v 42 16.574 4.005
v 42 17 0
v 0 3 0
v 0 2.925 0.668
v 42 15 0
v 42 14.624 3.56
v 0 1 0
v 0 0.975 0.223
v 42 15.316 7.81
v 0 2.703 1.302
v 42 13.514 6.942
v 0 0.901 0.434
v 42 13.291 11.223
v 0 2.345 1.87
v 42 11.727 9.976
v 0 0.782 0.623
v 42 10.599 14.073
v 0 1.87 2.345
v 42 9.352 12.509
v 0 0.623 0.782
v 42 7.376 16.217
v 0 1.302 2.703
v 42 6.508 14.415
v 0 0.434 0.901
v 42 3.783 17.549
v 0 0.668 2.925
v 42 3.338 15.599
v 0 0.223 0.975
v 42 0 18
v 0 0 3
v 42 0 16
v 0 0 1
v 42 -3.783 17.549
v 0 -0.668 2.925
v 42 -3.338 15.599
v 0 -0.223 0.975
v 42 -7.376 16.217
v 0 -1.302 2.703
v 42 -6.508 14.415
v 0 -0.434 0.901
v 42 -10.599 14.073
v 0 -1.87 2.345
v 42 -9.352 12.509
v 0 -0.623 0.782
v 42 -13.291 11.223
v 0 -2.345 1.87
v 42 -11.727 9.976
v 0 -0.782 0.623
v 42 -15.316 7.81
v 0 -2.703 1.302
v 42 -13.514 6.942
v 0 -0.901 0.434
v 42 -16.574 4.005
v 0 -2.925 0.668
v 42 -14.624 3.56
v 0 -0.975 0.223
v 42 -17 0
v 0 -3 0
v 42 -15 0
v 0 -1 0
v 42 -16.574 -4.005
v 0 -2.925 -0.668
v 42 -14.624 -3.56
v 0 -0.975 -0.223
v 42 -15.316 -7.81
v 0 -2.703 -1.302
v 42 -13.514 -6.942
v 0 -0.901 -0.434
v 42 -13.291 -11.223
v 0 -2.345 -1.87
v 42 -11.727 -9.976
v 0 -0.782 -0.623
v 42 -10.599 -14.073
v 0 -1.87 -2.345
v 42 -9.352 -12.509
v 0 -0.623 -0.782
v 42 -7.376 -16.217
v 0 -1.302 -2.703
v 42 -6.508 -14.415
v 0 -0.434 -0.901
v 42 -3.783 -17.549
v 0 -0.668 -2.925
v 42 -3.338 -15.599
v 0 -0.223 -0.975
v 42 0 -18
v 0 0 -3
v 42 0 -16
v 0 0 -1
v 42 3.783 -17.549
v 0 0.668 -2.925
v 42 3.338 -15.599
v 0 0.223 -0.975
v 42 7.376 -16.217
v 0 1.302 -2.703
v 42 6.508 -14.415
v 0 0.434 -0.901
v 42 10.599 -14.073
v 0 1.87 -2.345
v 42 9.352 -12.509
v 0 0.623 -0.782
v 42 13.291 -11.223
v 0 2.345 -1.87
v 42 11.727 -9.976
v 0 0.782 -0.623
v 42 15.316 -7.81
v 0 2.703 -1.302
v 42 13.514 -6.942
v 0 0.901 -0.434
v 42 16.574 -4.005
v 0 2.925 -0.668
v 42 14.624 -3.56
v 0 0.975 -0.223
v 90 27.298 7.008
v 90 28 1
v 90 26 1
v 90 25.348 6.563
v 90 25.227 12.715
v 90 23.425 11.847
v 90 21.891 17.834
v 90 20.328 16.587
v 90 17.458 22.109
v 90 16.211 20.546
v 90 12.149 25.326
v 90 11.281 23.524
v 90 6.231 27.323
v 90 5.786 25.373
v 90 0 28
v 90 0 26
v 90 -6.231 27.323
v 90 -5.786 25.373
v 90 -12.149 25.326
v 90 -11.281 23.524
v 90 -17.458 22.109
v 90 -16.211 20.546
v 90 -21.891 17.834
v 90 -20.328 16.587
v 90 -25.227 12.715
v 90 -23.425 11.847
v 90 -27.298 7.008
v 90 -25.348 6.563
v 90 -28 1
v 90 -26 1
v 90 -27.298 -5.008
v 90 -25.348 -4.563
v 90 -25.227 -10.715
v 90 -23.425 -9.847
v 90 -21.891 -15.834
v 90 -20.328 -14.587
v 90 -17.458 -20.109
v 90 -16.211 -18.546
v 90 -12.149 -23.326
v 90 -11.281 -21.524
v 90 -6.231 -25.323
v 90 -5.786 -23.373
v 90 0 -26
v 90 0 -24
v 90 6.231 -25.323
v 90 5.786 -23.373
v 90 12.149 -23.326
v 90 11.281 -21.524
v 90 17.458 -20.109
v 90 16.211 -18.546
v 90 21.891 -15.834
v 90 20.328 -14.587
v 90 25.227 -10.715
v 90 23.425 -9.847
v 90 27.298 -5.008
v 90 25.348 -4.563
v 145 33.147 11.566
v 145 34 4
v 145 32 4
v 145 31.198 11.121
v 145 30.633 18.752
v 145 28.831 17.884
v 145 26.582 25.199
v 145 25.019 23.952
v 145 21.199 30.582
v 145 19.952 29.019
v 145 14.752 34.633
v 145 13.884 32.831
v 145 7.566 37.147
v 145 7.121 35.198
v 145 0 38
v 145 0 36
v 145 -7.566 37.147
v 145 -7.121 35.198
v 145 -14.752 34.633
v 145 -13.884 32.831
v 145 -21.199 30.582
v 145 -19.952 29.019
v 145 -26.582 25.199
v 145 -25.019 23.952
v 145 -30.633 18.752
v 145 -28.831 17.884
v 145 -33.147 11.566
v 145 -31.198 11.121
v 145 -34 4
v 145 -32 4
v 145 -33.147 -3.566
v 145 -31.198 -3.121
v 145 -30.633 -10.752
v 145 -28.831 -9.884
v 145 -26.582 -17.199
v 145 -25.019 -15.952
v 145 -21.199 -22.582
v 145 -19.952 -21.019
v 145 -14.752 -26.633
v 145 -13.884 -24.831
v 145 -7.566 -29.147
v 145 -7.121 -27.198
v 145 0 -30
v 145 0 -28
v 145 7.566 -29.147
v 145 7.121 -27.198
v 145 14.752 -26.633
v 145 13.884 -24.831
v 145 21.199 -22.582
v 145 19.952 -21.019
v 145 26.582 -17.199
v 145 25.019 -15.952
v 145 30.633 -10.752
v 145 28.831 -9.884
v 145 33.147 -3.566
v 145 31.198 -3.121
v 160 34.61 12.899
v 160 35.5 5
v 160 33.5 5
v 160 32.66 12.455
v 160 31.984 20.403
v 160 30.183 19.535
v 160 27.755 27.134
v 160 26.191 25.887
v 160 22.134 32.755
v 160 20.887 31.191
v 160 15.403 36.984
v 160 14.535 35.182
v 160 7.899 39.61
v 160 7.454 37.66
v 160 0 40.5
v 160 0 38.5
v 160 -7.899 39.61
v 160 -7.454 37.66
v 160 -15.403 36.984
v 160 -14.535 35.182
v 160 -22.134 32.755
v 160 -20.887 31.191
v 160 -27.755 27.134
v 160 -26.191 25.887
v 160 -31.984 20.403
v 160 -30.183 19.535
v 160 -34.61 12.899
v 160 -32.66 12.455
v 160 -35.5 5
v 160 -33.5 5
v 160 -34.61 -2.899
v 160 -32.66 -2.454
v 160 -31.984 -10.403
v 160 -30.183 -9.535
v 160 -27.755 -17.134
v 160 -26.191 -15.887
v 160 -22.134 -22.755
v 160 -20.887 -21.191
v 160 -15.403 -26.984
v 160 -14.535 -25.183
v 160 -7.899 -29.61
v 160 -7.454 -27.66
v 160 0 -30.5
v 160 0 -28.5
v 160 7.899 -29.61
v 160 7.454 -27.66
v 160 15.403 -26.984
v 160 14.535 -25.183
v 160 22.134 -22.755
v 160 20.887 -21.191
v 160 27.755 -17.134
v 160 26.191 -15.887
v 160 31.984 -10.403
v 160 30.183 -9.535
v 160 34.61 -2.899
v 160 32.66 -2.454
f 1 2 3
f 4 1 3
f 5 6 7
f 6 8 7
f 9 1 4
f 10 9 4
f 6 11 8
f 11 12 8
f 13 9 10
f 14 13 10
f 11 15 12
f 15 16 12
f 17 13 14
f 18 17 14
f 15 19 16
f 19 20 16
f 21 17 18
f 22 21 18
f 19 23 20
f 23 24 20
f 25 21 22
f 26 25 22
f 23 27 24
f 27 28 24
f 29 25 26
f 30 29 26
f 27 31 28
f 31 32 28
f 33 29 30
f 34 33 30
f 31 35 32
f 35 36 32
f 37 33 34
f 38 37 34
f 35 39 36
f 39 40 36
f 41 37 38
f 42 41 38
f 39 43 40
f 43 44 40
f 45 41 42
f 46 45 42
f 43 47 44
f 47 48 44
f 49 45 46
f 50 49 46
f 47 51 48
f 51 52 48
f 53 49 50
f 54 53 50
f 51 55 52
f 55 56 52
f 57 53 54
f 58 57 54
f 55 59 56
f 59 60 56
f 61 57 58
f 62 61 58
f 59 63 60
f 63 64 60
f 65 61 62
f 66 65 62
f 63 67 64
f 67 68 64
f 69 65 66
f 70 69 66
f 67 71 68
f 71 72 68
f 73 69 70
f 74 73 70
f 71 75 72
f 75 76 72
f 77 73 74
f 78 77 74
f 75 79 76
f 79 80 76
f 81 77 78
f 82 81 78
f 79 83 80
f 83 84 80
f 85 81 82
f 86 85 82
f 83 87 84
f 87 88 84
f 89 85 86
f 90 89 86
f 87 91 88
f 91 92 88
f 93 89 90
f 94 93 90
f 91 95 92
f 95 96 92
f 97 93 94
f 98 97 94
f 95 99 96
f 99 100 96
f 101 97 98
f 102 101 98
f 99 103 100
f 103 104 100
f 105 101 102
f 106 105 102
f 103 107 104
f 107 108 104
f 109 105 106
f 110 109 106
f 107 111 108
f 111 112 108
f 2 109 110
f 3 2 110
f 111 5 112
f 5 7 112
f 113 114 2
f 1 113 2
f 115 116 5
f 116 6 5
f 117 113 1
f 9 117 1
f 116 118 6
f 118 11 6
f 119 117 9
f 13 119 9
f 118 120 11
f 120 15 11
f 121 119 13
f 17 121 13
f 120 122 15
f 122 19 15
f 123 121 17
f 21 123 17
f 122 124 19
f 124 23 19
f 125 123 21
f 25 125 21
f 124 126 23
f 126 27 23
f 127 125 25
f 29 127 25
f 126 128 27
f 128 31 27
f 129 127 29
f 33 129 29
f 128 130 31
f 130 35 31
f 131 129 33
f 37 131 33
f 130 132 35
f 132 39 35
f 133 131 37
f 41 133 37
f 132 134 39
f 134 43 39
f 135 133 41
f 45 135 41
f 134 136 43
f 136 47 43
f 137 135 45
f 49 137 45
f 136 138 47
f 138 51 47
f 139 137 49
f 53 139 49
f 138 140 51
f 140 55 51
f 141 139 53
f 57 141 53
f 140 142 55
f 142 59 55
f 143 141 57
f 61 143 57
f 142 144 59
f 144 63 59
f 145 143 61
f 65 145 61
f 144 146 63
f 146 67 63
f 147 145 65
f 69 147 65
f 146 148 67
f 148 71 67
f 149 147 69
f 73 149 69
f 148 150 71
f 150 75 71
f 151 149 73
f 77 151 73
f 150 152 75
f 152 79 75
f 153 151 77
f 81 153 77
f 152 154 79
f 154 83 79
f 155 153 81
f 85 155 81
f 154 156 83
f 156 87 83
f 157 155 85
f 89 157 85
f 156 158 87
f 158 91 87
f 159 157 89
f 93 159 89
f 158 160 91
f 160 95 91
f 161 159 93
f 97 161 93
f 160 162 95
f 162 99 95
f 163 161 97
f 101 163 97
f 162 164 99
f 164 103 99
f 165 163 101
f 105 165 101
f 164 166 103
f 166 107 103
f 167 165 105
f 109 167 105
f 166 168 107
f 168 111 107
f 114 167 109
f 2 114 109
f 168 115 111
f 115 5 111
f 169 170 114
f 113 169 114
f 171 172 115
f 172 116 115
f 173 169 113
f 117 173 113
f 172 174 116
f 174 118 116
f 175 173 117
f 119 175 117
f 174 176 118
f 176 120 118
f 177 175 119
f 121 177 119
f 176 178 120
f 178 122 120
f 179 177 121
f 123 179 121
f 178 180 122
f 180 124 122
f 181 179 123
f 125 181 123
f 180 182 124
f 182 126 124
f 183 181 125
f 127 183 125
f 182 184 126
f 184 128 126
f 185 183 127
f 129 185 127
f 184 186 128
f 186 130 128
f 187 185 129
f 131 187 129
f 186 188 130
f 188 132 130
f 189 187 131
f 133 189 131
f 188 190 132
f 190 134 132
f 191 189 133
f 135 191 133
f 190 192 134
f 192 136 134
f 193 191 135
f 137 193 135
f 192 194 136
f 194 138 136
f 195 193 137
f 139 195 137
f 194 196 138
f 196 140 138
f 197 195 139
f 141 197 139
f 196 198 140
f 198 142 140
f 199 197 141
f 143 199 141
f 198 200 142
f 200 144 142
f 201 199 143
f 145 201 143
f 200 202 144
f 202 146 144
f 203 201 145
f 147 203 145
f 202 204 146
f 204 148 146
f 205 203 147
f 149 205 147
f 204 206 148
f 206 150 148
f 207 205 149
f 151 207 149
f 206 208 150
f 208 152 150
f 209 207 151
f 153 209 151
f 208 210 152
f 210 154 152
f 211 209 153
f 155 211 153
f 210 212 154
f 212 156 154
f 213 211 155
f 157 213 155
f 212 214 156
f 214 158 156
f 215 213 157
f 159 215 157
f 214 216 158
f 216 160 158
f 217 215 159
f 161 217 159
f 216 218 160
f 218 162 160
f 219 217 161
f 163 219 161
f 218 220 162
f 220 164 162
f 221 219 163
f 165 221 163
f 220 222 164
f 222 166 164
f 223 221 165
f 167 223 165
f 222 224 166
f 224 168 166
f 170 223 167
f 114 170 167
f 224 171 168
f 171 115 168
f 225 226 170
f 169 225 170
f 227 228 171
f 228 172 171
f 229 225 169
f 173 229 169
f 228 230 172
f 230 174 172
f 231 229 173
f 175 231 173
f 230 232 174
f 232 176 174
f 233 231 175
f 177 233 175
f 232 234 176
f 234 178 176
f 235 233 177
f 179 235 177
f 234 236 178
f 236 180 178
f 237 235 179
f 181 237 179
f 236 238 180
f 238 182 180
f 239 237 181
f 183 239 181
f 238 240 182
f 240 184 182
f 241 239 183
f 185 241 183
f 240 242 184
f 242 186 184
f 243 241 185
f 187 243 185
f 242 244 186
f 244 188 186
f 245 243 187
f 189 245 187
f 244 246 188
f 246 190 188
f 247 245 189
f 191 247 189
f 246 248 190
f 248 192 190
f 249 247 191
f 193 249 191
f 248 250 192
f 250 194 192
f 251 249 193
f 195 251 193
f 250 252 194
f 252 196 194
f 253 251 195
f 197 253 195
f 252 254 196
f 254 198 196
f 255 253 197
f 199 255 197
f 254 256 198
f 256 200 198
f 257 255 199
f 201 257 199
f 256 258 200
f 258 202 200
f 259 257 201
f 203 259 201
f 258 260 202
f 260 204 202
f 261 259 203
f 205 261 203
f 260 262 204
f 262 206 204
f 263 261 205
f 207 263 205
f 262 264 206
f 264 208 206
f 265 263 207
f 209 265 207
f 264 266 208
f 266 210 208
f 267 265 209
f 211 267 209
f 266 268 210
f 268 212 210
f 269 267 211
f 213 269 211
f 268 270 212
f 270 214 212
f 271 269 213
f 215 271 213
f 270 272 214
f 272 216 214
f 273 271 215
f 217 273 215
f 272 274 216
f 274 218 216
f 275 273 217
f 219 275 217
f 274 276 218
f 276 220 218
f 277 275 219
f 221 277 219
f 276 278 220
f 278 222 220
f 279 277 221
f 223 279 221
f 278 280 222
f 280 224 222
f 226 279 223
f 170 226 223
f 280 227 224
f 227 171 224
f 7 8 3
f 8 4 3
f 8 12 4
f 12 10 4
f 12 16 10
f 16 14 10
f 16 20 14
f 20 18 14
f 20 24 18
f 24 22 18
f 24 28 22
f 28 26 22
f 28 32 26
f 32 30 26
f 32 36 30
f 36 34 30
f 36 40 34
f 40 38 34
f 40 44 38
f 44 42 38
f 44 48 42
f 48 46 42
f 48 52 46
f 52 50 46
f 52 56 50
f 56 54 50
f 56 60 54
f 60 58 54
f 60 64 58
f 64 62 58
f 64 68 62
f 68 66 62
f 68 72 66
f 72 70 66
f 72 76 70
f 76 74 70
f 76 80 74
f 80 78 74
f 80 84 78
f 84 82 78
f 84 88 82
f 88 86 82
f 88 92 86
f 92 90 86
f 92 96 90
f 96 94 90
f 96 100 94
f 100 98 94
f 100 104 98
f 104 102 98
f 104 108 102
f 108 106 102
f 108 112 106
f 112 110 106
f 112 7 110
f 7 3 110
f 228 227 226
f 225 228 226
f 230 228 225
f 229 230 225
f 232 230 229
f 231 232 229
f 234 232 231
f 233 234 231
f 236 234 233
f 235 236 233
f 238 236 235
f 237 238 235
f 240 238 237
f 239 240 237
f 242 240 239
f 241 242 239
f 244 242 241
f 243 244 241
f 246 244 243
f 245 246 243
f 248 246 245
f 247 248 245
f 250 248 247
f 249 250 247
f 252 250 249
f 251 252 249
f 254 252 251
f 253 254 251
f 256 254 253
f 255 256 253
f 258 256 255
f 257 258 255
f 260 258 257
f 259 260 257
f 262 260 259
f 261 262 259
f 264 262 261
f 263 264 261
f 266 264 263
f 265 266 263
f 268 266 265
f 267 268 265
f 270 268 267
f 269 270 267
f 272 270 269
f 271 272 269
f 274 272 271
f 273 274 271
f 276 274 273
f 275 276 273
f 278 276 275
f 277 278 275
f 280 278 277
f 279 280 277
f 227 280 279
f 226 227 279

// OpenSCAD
polyhedron(points=[[0.0, 3.0, 0.0], [0.0, 2.924784, 0.667563], [0.0, 2.702907, 1.301651], [0.0, 2.345494, 1.870469], [0.0, 1.870469, 2.345494], [0.0, 1.301651, 2.702907], [0.0, 0.667563, 2.924784], [0.0, 0.0, 3.0], [0.0, -0.667563, 2.924784], [0.0, -1.301651, 2.702907], [0.0, -1.870469, 2.345494], [0.0, -2.345494, 1.870469], [0.0, -2.702907, 1.301651], [0.0, -2.924784, 0.667563], [0.0, -3.0, 0.0], [0.0, -2.924784, -0.667563], [0.0, -2.702907, -1.301651], [0.0, -2.345494, -1.870469], [0.0, -1.870469, -2.345494], [0.0, -1.301651, -2.702907], [0.0, -0.667563, -2.924784], [0.0, -0.0, -3.0], [0.0, 0.667563, -2.924784], [0.0, 1.301651, -2.702907], [0.0, 1.870469, -2.345494], [0.0, 2.345494, -1.870469], [0.0, 2.702907, -1.301651], [0.0, 2.924784, -0.667563], [0.0, 1.0, 0.0], [0.0, 0.974928, 0.222521], [0.0, 0.900969, 0.433884], [0.0, 0.781831, 0.62349], [0.0, 0.62349, 0.781831], [0.0, 0.433884, 0.900969], [0.0, 0.222521, 0.974928], [0.0, 0.0, 1.0], [0.0, -0.222521, 0.974928], [0.0, -0.433884, 0.900969], [0.0, -0.62349, 0.781831], [0.0, -0.781831, 0.62349], [0.0, -0.900969, 0.433884], [0.0, -0.974928, 0.222521], [0.0, -1.0, 0.0], [0.0, -0.974928, -0.222521], [0.0, -0.900969, -0.433884], [0.0, -0.781831, -0.62349], [0.0, -0.62349, -0.781831], [0.0, -0.433884, -0.900969], [0.0, -0.222521, -0.974928], [0.0, -0.0, -1.0], [0.0, 0.222521, -0.974928], [0.0, 0.433884, -0.900969], [0.0, 0.62349, -0.781831], [0.0, 0.781831, -0.62349], [0.0, 0.900969, -0.433884], [0.0, 0.974928, -0.222521], [42.0, 17.0, 0.0], [42.0, 16.573775, 4.005377], [42.0, 15.316471, 7.809907], [42.0, 13.291135, 11.222816], [42.0, 10.599327, 14.072967], [42.0, 7.376024, 16.21744], [42.0, 3.782856, 17.548702], [42.0, 0.0, 18.0], [42.0, -3.782856, 17.548702], [42.0, -7.376024, 16.21744], [42.0, -10.599327, 14.072967], [42.0, -13.291135, 11.222816], [42.0, -15.316471, 7.809907], [42.0, -16.573775, 4.005377], [42.0, -17.0, 0.0], [42.0, -16.573775, -4.005377], [42.0, -15.316471, -7.809907], [42.0, -13.291135, -11.222816], [42.0, -10.599327, -14.072967], [42.0, -7.376024, -16.21744], [42.0, -3.782856, -17.548702], [42.0, -0.0, -18.0], [42.0, 3.782856, -17.548702], [42.0, 7.376024, -16.21744], [42.0, 10.599327, -14.072967], [42.0, 13.291135, -11.222816], [42.0, 15.316471, -7.809907], [42.0, 16.573775, -4.005377], [42.0, 15.0, 0.0], [42.0, 14.623919, 3.560335], [42.0, 13.514533, 6.94214], [42.0, 11.727472, 9.975837], [42.0, 9.352347, 12.509304], [42.0, 6.508256, 14.415502], [42.0, 3.337814, 15.598847], [42.0, 0.0, 16.0], [42.0, -3.337814, 15.598847], [42.0, -6.508256, 14.415502], [42.0, -9.352347, 12.509304], [42.0, -11.727472, 9.975837], [42.0, -13.514533, 6.94214], [42.0, -14.623919, 3.560335], [42.0, -15.0, 0.0], [42.0, -14.623919, -3.560335], [42.0, -13.514533, -6.94214], [42.0, -11.727472, -9.975837], [42.0, -9.352347, -12.509304], [42.0, -6.508256, -14.415502], [42.0, -3.337814, -15.598847], [42.0, -0.0, -16.0], [42.0, 3.337814, -15.598847], [42.0, 6.508256, -14.415502], [42.0, 9.352347, -12.509304], [42.0, 11.727472, -9.975837], [42.0, 13.514533, -6.94214], [42.0, 14.623919, -3.560335], [90.0, 28.0, 1.0], [90.0, 27.297982, 7.008065], [90.0, 25.227128, 12.714861], [90.0, 21.891282, 17.834225], [90.0, 17.457714, 22.10945], [90.0, 12.148745, 25.326159], [90.0, 6.230586, 27.323054], [90.0, 0.0, 28.0], [90.0, -6.230586, 27.323054], [90.0, -12.148745, 25.326159], [90.0, -17.457714, 22.10945], [90.0, -21.891282, 17.834225], [90.0, -25.227128, 12.714861], [90.0, -27.297982, 7.008065], [90.0, -28.0, 1.0], [90.0, -27.297982, -5.008065], [90.0, -25.227128, -10.714861], [90.0, -21.891282, -15.834225], [90.0, -17.457714, -20.10945], [90.0, -12.148745, -23.326159], [90.0, -6.230586, -25.323054], [90.0, -0.0, -26.0], [90.0, 6.230586, -25.323054], [90.0, 12.148745, -23.326159], [90.0, 17.457714, -20.10945], [90.0, 21.891282, -15.834225], [90.0, 25.227128, -10.714861], [90.0, 27.297982, -5.008065], [90.0, 26.0, 1.0], [90.0, 25.348126, 6.563023], [90.0, 23.425191, 11.847093], [90.0, 20.327619, 16.587245], [90.0, 16.210735, 20.545787], [90.0, 11.280977, 23.524222], [90.0, 5.785544, 25.373198], [90.0, 0.0, 26.0], [90.0, -5.785544, 25.373198], [90.0, -11.280977, 23.524222], [90.0, -16.210735, 20.545787], [90.0, -20.327619, 16.587245], [90.0, -23.425191, 11.847093], [90.0, -25.348126, 6.563023], [90.0, -26.0, 1.0], [90.0, -25.348126, -4.563023], [90.0, -23.425191, -9.847093], [90.0, -20.327619, -14.587245], [90.0, -16.210735, -18.545787], [90.0, -11.280977, -21.524222], [90.0, -5.785544, -23.373198], [90.0, -0.0, -24.0], [90.0, 5.785544, -23.373198], [90.0, 11.280977, -21.524222], [90.0, 16.210735, -18.545787], [90.0, 20.327619, -14.587245], [90.0, 23.425191, -9.847093], [90.0, 25.348126, -4.563023], [145.0, 34.0, 4.0], [145.0, 33.147549, 11.565712], [145.0, 30.632942, 18.752047], [145.0, 26.58227, 25.198653], [145.0, 21.198653, 30.58227], [145.0, 14.752047, 34.632942], [145.0, 7.565712, 37.147549], [145.0, 0.0, 38.0], [145.0, -7.565712, 37.147549], [145.0, -14.752047, 34.632942], [145.0, -21.198653, 30.58227], [145.0, -26.58227, 25.198653], [145.0, -30.632942, 18.752047], [145.0, -33.147549, 11.565712], [145.0, -34.0, 4.0], [145.0, -33.147549, -3.565712], [145.0, -30.632942, -10.752047], [145.0, -26.58227, -17.198653], [145.0, -21.198653, -22.58227], [145.0, -14.752047, -26.632942], [145.0, -7.565712, -29.147549], [145.0, -0.0, -30.0], [145.0, 7.565712, -29.147549], [145.0, 14.752047, -26.632942], [145.0, 21.198653, -22.58227], [145.0, 26.58227, -17.198653], [145.0, 30.632942, -10.752047], [145.0, 33.147549, -3.565712], [145.0, 32.0, 4.0], [145.0, 31.197693, 11.12067], [145.0, 28.831004, 17.88428], [145.0, 25.018607, 23.951674], [145.0, 19.951674, 29.018607], [145.0, 13.88428, 32.831004], [145.0, 7.12067, 35.197693], [145.0, 0.0, 36.0], [145.0, -7.12067, 35.197693], [145.0, -13.88428, 32.831004], [145.0, -19.951674, 29.018607], [145.0, -25.018607, 23.951674], [145.0, -28.831004, 17.88428], [145.0, -31.197693, 11.12067], [145.0, -32.0, 4.0], [145.0, -31.197693, -3.12067], [145.0, -28.831004, -9.88428], [145.0, -25.018607, -15.951674], [145.0, -19.951674, -21.018607], [145.0, -13.88428, -24.831004], [145.0, -7.12067, -27.197693], [145.0, -0.0, -28.0], [145.0, 7.12067, -27.197693], [145.0, 13.88428, -24.831004], [145.0, 19.951674, -21.018607], [145.0, 25.018607, -15.951674], [145.0, 28.831004, -9.88428], [145.0, 31.197693, -3.12067], [160.0, 35.5, 5.0], [160.0, 34.609941, 12.899493], [160.0, 31.984395, 20.402873], [160.0, 27.755018, 27.133888], [160.0, 22.133888, 32.755018], [160.0, 15.402873, 36.984395], [160.0, 7.899493, 39.609941], [160.0, 0.0, 40.5], [160.0, -7.899493, 39.609941], [160.0, -15.402873, 36.984395], [160.0, -22.133888, 32.755018], [160.0, -27.755018, 27.133888], [160.0, -31.984395, 20.402873], [160.0, -34.609941, 12.899493], [160.0, -35.5, 5.0], [160.0, -34.609941, -2.899493], [160.0, -31.984395, -10.402873], [160.0, -27.755018, -17.133888], [160.0, -22.133888, -22.755018], [160.0, -15.402873, -26.984395], [160.0, -7.899493, -29.609941], [160.0, -0.0, -30.5], [160.0, 7.899493, -29.609941], [160.0, 15.402873, -26.984395], [160.0, 22.133888, -22.755018], [160.0, 27.755018, -17.133888], [160.0, 31.984395, -10.402873], [160.0, 34.609941, -2.899493], [160.0, 33.5, 5.0], [160.0, 32.660085, 12.454451], [160.0, 30.182457, 19.535105], [160.0, 26.191355, 25.886908], [160.0, 20.886908, 31.191355], [160.0, 14.535105, 35.182457], [160.0, 7.454451, 37.660085], [160.0, 0.0, 38.5], [160.0, -7.454451, 37.660085], [160.0, -14.535105, 35.182457], [160.0, -20.886908, 31.191355], [160.0, -26.191355, 25.886908], [160.0, -30.182457, 19.535105], [160.0, -32.660085, 12.454451], [160.0, -33.5, 5.0], [160.0, -32.660085, -2.454451], [160.0, -30.182457, -9.535105], [160.0, -26.191355, -15.886908], [160.0, -20.886908, -21.191355], [160.0, -14.535105, -25.182457], [160.0, -7.454451, -27.660085], [160.0, -0.0, -28.5], [160.0, 7.454451, -27.660085], [160.0, 14.535105, -25.182457], [160.0, 20.886908, -21.191355], [160.0, 26.191355, -15.886908], [160.0, 30.182457, -9.535105], [160.0, 32.660085, -2.454451]], faces=[[0, 56, 57], [0, 57, 1], [28, 85, 84], [28, 29, 85], [1, 57, 58], [1, 58, 2], [29, 86, 85], [29, 30, 86], [2, 58, 59], [2, 59, 3], [30, 87, 86], [30, 31, 87], [3, 59, 60], [3, 60, 4], [31, 88, 87], [31, 32, 88], [4, 60, 61], [4, 61, 5], [32, 89, 88], [32, 33, 89], [5, 61, 62], [5, 62, 6], [33, 90, 89], [33, 34, 90], [6, 62, 63], [6, 63, 7], [34, 91, 90], [34, 35, 91], [7, 63, 64], [7, 64, 8], [35, 92, 91], [35, 36, 92], [8, 64, 65], [8, 65, 9], [36, 93, 92], [36, 37, 93], [9, 65, 66], [9, 66, 10], [37, 94, 93], [37, 38, 94], [10, 66, 67], [10, 67, 11], [38, 95, 94], [38, 39, 95], [11, 67, 68], [11, 68, 12], [39, 96, 95], [39, 40, 96], [12, 68, 69], [12, 69, 13], [40, 97, 96], [40, 41, 97], [13, 69, 70], [13, 70, 14], [41, 98, 97], [41, 42, 98], [14, 70, 71], [14, 71, 15], [42, 99, 98], [42, 43, 99], [15, 71, 72], [15, 72, 16], [43, 100, 99], [43, 44, 100], [16, 72, 73], [16, 73, 17], [44, 101, 100], [44, 45, 101], [17, 73, 74], [17, 74, 18], [45, 102, 101], [45, 46, 102], [18, 74, 75], [18, 75, 19], [46, 103, 102], [46, 47, 103], [19, 75, 76], [19, 76, 20], [47, 104, 103], [47, 48, 104], [20, 76, 77], [20, 77, 21], [48, 105, 104], [48, 49, 105], [21, 77, 78], [21, 78, 22], [49, 106, 105], [49, 50, 106], [22, 78, 79], [22, 79, 23], [50, 107, 106], [50, 51, 107], [23, 79, 80], [23, 80, 24], [51, 108, 107], [51, 52, 108], [24, 80, 81], [24, 81, 25], [52, 109, 108], [52, 53, 109], [25, 81, 82], [25, 82, 26], [53, 110, 109], [53, 54, 110], [26, 82, 83], [26, 83, 27], [54, 111, 110], [54, 55, 111], [27, 83, 56], [27, 56, 0], [55, 84, 111], [55, 28, 84], [56, 112, 113], [56, 113, 57], [84, 141, 140], [84, 85, 141], [57, 113, 114], [57, 114, 58], [85, 142, 141], [85, 86, 142], [58, 114, 115], [58, 115, 59], [86, 143, 142], [86, 87, 143], [59, 115, 116], [59, 116, 60], [87, 144, 143], [87, 88, 144], [60, 116, 117], [60, 117, 61], [88, 145, 144], [88, 89, 145], [61, 117, 118], [61, 118, 62], [89, 146, 145], [89, 90, 146], [62, 118, 119], [62, 119, 63], [90, 147, 146], [90, 91, 147], [63, 119, 120], [63, 120, 64], [91, 148, 147], [91, 92, 148], [64, 120, 121], [64, 121, 65], [92, 149, 148], [92, 93, 149], [65, 121, 122], [65, 122, 66], [93, 150, 149], [93, 94, 150], [66, 122, 123], [66, 123, 67], [94, 151, 150], [94, 95, 151], [67, 123, 124], [67, 124, 68], [95, 152, 151], [95, 96, 152], [68, 124, 125], [68, 125, 69], [96, 153, 152], [96, 97, 153], [69, 125, 126], [69, 126, 70], [97, 154, 153], [97, 98, 154], [70, 126, 127], [70, 127, 71], [98, 155, 154], [98, 99, 155], [71, 127, 128], [71, 128, 72], [99, 156, 155], [99, 100, 156], [72, 128, 129], [72, 129, 73], [100, 157, 156], [100, 101, 157], [73, 129, 130], [73, 130, 74], [101, 158, 157], [101, 102, 158], [74, 130, 131], [74, 131, 75], [102, 159, 158], [102, 103, 159], [75, 131, 132], [75, 132, 76], [103, 160, 159], [103, 104, 160], [76, 132, 133], [76, 133, 77], [104, 161, 160], [104, 105, 161], [77, 133, 134], [77, 134, 78], [105, 162, 161], [105, 106, 162], [78, 134, 135], [78, 135, 79], [106, 163, 162], [106, 107, 163], [79, 135, 136], [79, 136, 80], [107, 164, 163], [107, 108, 164], [80, 136, 137], [80, 137, 81], [108, 165, 164], [108, 109, 165], [81, 137, 138], [81, 138, 82], [109, 166, 165], [109, 110, 166], [82, 138, 139], [82, 139, 83], [110, 167, 166], [110, 111, 167], [83, 139, 112], [83, 112, 56], [111, 140, 167], [111, 84, 140], [112, 168, 169], [112, 169, 113], [140, 197, 196], [140, 141, 197], [113, 169, 170], [113, 170, 114], [141, 198, 197], [141, 142, 198], [114, 170, 171], [114, 171, 115], [142, 199, 198], [142, 143, 199], [115, 171, 172], [115, 172, 116], [143, 200, 199], [143, 144, 200], [116, 172, 173], [116, 173, 117], [144, 201, 200], [144, 145, 201], [117, 173, 174], [117, 174, 118], [145, 202, 201], [145, 146, 202], [118, 174, 175], [118, 175, 119], [146, 203, 202], [146, 147, 203], [119, 175, 176], [119, 176, 120], [147, 204, 203], [147, 148, 204], [120, 176, 177], [120, 177, 121], [148, 205, 204], [148, 149, 205], [121, 177, 178], [121, 178, 122], [149, 206, 205], [149, 150, 206], [122, 178, 179], [122, 179, 123], [150, 207, 206], [150, 151, 207], [123, 179, 180], [123, 180, 124], [151, 208, 207], [151, 152, 208], [124, 180, 181], [124, 181, 125], [152, 209, 208], [152, 153, 209], [125, 181, 182], [125, 182, 126], [153, 210, 209], [153, 154, 210], [126, 182, 183], [126, 183, 127], [154, 211, 210], [154, 155, 211], [127, 183, 184], [127, 184, 128], [155, 212, 211], [155, 156, 212], [128, 184, 185], [128, 185, 129], [156, 213, 212], [156, 157, 213], [129, 185, 186], [129, 186, 130], [157, 214, 213], [157, 158, 214], [130, 186, 187], [130, 187, 131], [158, 215, 214], [158, 159, 215], [131, 187, 188], [131, 188, 132], [159, 216, 215], [159, 160, 216], [132, 188, 189], [132, 189, 133], [160, 217, 216], [160, 161, 217], [133, 189, 190], [133, 190, 134], [161, 218, 217], [161, 162, 218], [134, 190, 191], [134, 191, 135], [162, 219, 218], [162, 163, 219], [135, 191, 192], [135, 192, 136], [163, 220, 219], [163, 164, 220], [136, 192, 193], [136, 193, 137], [164, 221, 220], [164, 165, 221], [137, 193, 194], [137, 194, 138], [165, 222, 221], [165, 166, 222], [138, 194, 195], [138, 195, 139], [166, 223, 222], [166, 167, 223], [139, 195, 168], [139, 168, 112], [167, 196, 223], [167, 140, 196], [168, 224, 225], [168, 225, 169], [196, 253, 252], [196, 197, 253], [169, 225, 226], [169, 226, 170], [197, 254, 253], [197, 198, 254], [170, 226, 227], [170, 227, 171], [198, 255, 254], [198, 199, 255], [171, 227, 228], [171, 228, 172], [199, 256, 255], [199, 200, 256], [172, 228, 229], [172, 229, 173], [200, 257, 256], [200, 201, 257], [173, 229, 230], [173, 230, 174], [201, 258, 257], [201, 202, 258], [174, 230, 231], [174, 231, 175], [202, 259, 258], [202, 203, 259], [175, 231, 232], [175, 232, 176], [203, 260, 259], [203, 204, 260], [176, 232, 233], [176, 233, 177], [204, 261, 260], [204, 205, 261], [177, 233, 234], [177, 234, 178], [205, 262, 261], [205, 206, 262], [178, 234, 235], [178, 235, 179], [206, 263, 262], [206, 207, 263], [179, 235, 236], [179, 236, 180], [207, 264, 263], [207, 208, 264], [180, 236, 237], [180, 237, 181], [208, 265, 264], [208, 209, 265], [181, 237, 238], [181, 238, 182], [209, 266, 265], [209, 210, 266], [182, 238, 239], [182, 239, 183], [210, 267, 266], [210, 211, 267], [183, 239, 240], [183, 240, 184], [211, 268, 267], [211, 212, 268], [184, 240, 241], [184, 241, 185], [212, 269, 268], [212, 213, 269], [185, 241, 242], [185, 242, 186], [213, 270, 269], [213, 214, 270], [186, 242, 243], [186, 243, 187], [214, 271, 270], [214, 215, 271], [187, 243, 244], [187, 244, 188], [215, 272, 271], [215, 216, 272], [188, 244, 245], [188, 245, 189], [216, 273, 272], [216, 217, 273], [189, 245, 246], [189, 246, 190], [217, 274, 273], [217, 218, 274], [190, 246, 247], [190, 247, 191], [218, 275, 274], [218, 219, 275], [191, 247, 248], [191, 248, 192], [219, 276, 275], [219, 220, 276], [192, 248, 249], [192, 249, 193], [220, 277, 276], [220, 221, 277], [193, 249, 250], [193, 250, 194], [221, 278, 277], [221, 222, 278], [194, 250, 251], [194, 251, 195], [222, 279, 278], [222, 223, 279], [195, 251, 224], [195, 224, 168], [223, 252, 279], [223, 196, 252], [0, 29, 28], [0, 1, 29], [1, 30, 29], [1, 2, 30], [2, 31, 30], [2, 3, 31], [3, 32, 31], [3, 4, 32], [4, 33, 32], [4, 5, 33], [5, 34, 33], [5, 6, 34], [6, 35, 34], [6, 7, 35], [7, 36, 35], [7, 8, 36], [8, 37, 36], [8, 9, 37], [9, 38, 37], [9, 10, 38], [10, 39, 38], [10, 11, 39], [11, 40, 39], [11, 12, 40], [12, 41, 40], [12, 13, 41], [13, 42, 41], [13, 14, 42], [14, 43, 42], [14, 15, 43], [15, 44, 43], [15, 16, 44], [16, 45, 44], [16, 17, 45], [17, 46, 45], [17, 18, 46], [18, 47, 46], [18, 19, 47], [19, 48, 47], [19, 20, 48], [20, 49, 48], [20, 21, 49], [21, 50, 49], [21, 22, 50], [22, 51, 50], [22, 23, 51], [23, 52, 51], [23, 24, 52], [24, 53, 52], [24, 25, 53], [25, 54, 53], [25, 26, 54], [26, 55, 54], [26, 27, 55], [27, 28, 55], [27, 0, 28], [224, 252, 253], [224, 253, 225], [225, 253, 254], [225, 254, 226], [226, 254, 255], [226, 255, 227], [227, 255, 256], [227, 256, 228], [228, 256, 257], [228, 257, 229], [229, 257, 258], [229, 258, 230], [230, 258, 259], [230, 259, 231], [231, 259, 260], [231, 260, 232], [232, 260, 261], [232, 261, 233], [233, 261, 262], [233, 262, 234], [234, 262, 263], [234, 263, 235], [235, 263, 264], [235, 264, 236], [236, 264, 265], [236, 265, 237], [237, 265, 266], [237, 266, 238], [238, 266, 267], [238, 267, 239], [239, 267, 268], [239, 268, 240], [240, 268, 269], [240, 269, 241], [241, 269, 270], [241, 270, 242], [242, 270, 271], [242, 271, 243], [243, 271, 272], [243, 272, 244], [244, 272, 273], [244, 273, 245], [245, 273, 274], [245, 274, 246], [246, 274, 275], [246, 275, 247], [247, 275, 276], [247, 276, 248], [248, 276, 277], [248, 277, 249], [249, 277, 278], [249, 278, 250], [250, 278, 279], [250, 279, 251], [251, 279, 252], [251, 252, 224]], convexity=20);
